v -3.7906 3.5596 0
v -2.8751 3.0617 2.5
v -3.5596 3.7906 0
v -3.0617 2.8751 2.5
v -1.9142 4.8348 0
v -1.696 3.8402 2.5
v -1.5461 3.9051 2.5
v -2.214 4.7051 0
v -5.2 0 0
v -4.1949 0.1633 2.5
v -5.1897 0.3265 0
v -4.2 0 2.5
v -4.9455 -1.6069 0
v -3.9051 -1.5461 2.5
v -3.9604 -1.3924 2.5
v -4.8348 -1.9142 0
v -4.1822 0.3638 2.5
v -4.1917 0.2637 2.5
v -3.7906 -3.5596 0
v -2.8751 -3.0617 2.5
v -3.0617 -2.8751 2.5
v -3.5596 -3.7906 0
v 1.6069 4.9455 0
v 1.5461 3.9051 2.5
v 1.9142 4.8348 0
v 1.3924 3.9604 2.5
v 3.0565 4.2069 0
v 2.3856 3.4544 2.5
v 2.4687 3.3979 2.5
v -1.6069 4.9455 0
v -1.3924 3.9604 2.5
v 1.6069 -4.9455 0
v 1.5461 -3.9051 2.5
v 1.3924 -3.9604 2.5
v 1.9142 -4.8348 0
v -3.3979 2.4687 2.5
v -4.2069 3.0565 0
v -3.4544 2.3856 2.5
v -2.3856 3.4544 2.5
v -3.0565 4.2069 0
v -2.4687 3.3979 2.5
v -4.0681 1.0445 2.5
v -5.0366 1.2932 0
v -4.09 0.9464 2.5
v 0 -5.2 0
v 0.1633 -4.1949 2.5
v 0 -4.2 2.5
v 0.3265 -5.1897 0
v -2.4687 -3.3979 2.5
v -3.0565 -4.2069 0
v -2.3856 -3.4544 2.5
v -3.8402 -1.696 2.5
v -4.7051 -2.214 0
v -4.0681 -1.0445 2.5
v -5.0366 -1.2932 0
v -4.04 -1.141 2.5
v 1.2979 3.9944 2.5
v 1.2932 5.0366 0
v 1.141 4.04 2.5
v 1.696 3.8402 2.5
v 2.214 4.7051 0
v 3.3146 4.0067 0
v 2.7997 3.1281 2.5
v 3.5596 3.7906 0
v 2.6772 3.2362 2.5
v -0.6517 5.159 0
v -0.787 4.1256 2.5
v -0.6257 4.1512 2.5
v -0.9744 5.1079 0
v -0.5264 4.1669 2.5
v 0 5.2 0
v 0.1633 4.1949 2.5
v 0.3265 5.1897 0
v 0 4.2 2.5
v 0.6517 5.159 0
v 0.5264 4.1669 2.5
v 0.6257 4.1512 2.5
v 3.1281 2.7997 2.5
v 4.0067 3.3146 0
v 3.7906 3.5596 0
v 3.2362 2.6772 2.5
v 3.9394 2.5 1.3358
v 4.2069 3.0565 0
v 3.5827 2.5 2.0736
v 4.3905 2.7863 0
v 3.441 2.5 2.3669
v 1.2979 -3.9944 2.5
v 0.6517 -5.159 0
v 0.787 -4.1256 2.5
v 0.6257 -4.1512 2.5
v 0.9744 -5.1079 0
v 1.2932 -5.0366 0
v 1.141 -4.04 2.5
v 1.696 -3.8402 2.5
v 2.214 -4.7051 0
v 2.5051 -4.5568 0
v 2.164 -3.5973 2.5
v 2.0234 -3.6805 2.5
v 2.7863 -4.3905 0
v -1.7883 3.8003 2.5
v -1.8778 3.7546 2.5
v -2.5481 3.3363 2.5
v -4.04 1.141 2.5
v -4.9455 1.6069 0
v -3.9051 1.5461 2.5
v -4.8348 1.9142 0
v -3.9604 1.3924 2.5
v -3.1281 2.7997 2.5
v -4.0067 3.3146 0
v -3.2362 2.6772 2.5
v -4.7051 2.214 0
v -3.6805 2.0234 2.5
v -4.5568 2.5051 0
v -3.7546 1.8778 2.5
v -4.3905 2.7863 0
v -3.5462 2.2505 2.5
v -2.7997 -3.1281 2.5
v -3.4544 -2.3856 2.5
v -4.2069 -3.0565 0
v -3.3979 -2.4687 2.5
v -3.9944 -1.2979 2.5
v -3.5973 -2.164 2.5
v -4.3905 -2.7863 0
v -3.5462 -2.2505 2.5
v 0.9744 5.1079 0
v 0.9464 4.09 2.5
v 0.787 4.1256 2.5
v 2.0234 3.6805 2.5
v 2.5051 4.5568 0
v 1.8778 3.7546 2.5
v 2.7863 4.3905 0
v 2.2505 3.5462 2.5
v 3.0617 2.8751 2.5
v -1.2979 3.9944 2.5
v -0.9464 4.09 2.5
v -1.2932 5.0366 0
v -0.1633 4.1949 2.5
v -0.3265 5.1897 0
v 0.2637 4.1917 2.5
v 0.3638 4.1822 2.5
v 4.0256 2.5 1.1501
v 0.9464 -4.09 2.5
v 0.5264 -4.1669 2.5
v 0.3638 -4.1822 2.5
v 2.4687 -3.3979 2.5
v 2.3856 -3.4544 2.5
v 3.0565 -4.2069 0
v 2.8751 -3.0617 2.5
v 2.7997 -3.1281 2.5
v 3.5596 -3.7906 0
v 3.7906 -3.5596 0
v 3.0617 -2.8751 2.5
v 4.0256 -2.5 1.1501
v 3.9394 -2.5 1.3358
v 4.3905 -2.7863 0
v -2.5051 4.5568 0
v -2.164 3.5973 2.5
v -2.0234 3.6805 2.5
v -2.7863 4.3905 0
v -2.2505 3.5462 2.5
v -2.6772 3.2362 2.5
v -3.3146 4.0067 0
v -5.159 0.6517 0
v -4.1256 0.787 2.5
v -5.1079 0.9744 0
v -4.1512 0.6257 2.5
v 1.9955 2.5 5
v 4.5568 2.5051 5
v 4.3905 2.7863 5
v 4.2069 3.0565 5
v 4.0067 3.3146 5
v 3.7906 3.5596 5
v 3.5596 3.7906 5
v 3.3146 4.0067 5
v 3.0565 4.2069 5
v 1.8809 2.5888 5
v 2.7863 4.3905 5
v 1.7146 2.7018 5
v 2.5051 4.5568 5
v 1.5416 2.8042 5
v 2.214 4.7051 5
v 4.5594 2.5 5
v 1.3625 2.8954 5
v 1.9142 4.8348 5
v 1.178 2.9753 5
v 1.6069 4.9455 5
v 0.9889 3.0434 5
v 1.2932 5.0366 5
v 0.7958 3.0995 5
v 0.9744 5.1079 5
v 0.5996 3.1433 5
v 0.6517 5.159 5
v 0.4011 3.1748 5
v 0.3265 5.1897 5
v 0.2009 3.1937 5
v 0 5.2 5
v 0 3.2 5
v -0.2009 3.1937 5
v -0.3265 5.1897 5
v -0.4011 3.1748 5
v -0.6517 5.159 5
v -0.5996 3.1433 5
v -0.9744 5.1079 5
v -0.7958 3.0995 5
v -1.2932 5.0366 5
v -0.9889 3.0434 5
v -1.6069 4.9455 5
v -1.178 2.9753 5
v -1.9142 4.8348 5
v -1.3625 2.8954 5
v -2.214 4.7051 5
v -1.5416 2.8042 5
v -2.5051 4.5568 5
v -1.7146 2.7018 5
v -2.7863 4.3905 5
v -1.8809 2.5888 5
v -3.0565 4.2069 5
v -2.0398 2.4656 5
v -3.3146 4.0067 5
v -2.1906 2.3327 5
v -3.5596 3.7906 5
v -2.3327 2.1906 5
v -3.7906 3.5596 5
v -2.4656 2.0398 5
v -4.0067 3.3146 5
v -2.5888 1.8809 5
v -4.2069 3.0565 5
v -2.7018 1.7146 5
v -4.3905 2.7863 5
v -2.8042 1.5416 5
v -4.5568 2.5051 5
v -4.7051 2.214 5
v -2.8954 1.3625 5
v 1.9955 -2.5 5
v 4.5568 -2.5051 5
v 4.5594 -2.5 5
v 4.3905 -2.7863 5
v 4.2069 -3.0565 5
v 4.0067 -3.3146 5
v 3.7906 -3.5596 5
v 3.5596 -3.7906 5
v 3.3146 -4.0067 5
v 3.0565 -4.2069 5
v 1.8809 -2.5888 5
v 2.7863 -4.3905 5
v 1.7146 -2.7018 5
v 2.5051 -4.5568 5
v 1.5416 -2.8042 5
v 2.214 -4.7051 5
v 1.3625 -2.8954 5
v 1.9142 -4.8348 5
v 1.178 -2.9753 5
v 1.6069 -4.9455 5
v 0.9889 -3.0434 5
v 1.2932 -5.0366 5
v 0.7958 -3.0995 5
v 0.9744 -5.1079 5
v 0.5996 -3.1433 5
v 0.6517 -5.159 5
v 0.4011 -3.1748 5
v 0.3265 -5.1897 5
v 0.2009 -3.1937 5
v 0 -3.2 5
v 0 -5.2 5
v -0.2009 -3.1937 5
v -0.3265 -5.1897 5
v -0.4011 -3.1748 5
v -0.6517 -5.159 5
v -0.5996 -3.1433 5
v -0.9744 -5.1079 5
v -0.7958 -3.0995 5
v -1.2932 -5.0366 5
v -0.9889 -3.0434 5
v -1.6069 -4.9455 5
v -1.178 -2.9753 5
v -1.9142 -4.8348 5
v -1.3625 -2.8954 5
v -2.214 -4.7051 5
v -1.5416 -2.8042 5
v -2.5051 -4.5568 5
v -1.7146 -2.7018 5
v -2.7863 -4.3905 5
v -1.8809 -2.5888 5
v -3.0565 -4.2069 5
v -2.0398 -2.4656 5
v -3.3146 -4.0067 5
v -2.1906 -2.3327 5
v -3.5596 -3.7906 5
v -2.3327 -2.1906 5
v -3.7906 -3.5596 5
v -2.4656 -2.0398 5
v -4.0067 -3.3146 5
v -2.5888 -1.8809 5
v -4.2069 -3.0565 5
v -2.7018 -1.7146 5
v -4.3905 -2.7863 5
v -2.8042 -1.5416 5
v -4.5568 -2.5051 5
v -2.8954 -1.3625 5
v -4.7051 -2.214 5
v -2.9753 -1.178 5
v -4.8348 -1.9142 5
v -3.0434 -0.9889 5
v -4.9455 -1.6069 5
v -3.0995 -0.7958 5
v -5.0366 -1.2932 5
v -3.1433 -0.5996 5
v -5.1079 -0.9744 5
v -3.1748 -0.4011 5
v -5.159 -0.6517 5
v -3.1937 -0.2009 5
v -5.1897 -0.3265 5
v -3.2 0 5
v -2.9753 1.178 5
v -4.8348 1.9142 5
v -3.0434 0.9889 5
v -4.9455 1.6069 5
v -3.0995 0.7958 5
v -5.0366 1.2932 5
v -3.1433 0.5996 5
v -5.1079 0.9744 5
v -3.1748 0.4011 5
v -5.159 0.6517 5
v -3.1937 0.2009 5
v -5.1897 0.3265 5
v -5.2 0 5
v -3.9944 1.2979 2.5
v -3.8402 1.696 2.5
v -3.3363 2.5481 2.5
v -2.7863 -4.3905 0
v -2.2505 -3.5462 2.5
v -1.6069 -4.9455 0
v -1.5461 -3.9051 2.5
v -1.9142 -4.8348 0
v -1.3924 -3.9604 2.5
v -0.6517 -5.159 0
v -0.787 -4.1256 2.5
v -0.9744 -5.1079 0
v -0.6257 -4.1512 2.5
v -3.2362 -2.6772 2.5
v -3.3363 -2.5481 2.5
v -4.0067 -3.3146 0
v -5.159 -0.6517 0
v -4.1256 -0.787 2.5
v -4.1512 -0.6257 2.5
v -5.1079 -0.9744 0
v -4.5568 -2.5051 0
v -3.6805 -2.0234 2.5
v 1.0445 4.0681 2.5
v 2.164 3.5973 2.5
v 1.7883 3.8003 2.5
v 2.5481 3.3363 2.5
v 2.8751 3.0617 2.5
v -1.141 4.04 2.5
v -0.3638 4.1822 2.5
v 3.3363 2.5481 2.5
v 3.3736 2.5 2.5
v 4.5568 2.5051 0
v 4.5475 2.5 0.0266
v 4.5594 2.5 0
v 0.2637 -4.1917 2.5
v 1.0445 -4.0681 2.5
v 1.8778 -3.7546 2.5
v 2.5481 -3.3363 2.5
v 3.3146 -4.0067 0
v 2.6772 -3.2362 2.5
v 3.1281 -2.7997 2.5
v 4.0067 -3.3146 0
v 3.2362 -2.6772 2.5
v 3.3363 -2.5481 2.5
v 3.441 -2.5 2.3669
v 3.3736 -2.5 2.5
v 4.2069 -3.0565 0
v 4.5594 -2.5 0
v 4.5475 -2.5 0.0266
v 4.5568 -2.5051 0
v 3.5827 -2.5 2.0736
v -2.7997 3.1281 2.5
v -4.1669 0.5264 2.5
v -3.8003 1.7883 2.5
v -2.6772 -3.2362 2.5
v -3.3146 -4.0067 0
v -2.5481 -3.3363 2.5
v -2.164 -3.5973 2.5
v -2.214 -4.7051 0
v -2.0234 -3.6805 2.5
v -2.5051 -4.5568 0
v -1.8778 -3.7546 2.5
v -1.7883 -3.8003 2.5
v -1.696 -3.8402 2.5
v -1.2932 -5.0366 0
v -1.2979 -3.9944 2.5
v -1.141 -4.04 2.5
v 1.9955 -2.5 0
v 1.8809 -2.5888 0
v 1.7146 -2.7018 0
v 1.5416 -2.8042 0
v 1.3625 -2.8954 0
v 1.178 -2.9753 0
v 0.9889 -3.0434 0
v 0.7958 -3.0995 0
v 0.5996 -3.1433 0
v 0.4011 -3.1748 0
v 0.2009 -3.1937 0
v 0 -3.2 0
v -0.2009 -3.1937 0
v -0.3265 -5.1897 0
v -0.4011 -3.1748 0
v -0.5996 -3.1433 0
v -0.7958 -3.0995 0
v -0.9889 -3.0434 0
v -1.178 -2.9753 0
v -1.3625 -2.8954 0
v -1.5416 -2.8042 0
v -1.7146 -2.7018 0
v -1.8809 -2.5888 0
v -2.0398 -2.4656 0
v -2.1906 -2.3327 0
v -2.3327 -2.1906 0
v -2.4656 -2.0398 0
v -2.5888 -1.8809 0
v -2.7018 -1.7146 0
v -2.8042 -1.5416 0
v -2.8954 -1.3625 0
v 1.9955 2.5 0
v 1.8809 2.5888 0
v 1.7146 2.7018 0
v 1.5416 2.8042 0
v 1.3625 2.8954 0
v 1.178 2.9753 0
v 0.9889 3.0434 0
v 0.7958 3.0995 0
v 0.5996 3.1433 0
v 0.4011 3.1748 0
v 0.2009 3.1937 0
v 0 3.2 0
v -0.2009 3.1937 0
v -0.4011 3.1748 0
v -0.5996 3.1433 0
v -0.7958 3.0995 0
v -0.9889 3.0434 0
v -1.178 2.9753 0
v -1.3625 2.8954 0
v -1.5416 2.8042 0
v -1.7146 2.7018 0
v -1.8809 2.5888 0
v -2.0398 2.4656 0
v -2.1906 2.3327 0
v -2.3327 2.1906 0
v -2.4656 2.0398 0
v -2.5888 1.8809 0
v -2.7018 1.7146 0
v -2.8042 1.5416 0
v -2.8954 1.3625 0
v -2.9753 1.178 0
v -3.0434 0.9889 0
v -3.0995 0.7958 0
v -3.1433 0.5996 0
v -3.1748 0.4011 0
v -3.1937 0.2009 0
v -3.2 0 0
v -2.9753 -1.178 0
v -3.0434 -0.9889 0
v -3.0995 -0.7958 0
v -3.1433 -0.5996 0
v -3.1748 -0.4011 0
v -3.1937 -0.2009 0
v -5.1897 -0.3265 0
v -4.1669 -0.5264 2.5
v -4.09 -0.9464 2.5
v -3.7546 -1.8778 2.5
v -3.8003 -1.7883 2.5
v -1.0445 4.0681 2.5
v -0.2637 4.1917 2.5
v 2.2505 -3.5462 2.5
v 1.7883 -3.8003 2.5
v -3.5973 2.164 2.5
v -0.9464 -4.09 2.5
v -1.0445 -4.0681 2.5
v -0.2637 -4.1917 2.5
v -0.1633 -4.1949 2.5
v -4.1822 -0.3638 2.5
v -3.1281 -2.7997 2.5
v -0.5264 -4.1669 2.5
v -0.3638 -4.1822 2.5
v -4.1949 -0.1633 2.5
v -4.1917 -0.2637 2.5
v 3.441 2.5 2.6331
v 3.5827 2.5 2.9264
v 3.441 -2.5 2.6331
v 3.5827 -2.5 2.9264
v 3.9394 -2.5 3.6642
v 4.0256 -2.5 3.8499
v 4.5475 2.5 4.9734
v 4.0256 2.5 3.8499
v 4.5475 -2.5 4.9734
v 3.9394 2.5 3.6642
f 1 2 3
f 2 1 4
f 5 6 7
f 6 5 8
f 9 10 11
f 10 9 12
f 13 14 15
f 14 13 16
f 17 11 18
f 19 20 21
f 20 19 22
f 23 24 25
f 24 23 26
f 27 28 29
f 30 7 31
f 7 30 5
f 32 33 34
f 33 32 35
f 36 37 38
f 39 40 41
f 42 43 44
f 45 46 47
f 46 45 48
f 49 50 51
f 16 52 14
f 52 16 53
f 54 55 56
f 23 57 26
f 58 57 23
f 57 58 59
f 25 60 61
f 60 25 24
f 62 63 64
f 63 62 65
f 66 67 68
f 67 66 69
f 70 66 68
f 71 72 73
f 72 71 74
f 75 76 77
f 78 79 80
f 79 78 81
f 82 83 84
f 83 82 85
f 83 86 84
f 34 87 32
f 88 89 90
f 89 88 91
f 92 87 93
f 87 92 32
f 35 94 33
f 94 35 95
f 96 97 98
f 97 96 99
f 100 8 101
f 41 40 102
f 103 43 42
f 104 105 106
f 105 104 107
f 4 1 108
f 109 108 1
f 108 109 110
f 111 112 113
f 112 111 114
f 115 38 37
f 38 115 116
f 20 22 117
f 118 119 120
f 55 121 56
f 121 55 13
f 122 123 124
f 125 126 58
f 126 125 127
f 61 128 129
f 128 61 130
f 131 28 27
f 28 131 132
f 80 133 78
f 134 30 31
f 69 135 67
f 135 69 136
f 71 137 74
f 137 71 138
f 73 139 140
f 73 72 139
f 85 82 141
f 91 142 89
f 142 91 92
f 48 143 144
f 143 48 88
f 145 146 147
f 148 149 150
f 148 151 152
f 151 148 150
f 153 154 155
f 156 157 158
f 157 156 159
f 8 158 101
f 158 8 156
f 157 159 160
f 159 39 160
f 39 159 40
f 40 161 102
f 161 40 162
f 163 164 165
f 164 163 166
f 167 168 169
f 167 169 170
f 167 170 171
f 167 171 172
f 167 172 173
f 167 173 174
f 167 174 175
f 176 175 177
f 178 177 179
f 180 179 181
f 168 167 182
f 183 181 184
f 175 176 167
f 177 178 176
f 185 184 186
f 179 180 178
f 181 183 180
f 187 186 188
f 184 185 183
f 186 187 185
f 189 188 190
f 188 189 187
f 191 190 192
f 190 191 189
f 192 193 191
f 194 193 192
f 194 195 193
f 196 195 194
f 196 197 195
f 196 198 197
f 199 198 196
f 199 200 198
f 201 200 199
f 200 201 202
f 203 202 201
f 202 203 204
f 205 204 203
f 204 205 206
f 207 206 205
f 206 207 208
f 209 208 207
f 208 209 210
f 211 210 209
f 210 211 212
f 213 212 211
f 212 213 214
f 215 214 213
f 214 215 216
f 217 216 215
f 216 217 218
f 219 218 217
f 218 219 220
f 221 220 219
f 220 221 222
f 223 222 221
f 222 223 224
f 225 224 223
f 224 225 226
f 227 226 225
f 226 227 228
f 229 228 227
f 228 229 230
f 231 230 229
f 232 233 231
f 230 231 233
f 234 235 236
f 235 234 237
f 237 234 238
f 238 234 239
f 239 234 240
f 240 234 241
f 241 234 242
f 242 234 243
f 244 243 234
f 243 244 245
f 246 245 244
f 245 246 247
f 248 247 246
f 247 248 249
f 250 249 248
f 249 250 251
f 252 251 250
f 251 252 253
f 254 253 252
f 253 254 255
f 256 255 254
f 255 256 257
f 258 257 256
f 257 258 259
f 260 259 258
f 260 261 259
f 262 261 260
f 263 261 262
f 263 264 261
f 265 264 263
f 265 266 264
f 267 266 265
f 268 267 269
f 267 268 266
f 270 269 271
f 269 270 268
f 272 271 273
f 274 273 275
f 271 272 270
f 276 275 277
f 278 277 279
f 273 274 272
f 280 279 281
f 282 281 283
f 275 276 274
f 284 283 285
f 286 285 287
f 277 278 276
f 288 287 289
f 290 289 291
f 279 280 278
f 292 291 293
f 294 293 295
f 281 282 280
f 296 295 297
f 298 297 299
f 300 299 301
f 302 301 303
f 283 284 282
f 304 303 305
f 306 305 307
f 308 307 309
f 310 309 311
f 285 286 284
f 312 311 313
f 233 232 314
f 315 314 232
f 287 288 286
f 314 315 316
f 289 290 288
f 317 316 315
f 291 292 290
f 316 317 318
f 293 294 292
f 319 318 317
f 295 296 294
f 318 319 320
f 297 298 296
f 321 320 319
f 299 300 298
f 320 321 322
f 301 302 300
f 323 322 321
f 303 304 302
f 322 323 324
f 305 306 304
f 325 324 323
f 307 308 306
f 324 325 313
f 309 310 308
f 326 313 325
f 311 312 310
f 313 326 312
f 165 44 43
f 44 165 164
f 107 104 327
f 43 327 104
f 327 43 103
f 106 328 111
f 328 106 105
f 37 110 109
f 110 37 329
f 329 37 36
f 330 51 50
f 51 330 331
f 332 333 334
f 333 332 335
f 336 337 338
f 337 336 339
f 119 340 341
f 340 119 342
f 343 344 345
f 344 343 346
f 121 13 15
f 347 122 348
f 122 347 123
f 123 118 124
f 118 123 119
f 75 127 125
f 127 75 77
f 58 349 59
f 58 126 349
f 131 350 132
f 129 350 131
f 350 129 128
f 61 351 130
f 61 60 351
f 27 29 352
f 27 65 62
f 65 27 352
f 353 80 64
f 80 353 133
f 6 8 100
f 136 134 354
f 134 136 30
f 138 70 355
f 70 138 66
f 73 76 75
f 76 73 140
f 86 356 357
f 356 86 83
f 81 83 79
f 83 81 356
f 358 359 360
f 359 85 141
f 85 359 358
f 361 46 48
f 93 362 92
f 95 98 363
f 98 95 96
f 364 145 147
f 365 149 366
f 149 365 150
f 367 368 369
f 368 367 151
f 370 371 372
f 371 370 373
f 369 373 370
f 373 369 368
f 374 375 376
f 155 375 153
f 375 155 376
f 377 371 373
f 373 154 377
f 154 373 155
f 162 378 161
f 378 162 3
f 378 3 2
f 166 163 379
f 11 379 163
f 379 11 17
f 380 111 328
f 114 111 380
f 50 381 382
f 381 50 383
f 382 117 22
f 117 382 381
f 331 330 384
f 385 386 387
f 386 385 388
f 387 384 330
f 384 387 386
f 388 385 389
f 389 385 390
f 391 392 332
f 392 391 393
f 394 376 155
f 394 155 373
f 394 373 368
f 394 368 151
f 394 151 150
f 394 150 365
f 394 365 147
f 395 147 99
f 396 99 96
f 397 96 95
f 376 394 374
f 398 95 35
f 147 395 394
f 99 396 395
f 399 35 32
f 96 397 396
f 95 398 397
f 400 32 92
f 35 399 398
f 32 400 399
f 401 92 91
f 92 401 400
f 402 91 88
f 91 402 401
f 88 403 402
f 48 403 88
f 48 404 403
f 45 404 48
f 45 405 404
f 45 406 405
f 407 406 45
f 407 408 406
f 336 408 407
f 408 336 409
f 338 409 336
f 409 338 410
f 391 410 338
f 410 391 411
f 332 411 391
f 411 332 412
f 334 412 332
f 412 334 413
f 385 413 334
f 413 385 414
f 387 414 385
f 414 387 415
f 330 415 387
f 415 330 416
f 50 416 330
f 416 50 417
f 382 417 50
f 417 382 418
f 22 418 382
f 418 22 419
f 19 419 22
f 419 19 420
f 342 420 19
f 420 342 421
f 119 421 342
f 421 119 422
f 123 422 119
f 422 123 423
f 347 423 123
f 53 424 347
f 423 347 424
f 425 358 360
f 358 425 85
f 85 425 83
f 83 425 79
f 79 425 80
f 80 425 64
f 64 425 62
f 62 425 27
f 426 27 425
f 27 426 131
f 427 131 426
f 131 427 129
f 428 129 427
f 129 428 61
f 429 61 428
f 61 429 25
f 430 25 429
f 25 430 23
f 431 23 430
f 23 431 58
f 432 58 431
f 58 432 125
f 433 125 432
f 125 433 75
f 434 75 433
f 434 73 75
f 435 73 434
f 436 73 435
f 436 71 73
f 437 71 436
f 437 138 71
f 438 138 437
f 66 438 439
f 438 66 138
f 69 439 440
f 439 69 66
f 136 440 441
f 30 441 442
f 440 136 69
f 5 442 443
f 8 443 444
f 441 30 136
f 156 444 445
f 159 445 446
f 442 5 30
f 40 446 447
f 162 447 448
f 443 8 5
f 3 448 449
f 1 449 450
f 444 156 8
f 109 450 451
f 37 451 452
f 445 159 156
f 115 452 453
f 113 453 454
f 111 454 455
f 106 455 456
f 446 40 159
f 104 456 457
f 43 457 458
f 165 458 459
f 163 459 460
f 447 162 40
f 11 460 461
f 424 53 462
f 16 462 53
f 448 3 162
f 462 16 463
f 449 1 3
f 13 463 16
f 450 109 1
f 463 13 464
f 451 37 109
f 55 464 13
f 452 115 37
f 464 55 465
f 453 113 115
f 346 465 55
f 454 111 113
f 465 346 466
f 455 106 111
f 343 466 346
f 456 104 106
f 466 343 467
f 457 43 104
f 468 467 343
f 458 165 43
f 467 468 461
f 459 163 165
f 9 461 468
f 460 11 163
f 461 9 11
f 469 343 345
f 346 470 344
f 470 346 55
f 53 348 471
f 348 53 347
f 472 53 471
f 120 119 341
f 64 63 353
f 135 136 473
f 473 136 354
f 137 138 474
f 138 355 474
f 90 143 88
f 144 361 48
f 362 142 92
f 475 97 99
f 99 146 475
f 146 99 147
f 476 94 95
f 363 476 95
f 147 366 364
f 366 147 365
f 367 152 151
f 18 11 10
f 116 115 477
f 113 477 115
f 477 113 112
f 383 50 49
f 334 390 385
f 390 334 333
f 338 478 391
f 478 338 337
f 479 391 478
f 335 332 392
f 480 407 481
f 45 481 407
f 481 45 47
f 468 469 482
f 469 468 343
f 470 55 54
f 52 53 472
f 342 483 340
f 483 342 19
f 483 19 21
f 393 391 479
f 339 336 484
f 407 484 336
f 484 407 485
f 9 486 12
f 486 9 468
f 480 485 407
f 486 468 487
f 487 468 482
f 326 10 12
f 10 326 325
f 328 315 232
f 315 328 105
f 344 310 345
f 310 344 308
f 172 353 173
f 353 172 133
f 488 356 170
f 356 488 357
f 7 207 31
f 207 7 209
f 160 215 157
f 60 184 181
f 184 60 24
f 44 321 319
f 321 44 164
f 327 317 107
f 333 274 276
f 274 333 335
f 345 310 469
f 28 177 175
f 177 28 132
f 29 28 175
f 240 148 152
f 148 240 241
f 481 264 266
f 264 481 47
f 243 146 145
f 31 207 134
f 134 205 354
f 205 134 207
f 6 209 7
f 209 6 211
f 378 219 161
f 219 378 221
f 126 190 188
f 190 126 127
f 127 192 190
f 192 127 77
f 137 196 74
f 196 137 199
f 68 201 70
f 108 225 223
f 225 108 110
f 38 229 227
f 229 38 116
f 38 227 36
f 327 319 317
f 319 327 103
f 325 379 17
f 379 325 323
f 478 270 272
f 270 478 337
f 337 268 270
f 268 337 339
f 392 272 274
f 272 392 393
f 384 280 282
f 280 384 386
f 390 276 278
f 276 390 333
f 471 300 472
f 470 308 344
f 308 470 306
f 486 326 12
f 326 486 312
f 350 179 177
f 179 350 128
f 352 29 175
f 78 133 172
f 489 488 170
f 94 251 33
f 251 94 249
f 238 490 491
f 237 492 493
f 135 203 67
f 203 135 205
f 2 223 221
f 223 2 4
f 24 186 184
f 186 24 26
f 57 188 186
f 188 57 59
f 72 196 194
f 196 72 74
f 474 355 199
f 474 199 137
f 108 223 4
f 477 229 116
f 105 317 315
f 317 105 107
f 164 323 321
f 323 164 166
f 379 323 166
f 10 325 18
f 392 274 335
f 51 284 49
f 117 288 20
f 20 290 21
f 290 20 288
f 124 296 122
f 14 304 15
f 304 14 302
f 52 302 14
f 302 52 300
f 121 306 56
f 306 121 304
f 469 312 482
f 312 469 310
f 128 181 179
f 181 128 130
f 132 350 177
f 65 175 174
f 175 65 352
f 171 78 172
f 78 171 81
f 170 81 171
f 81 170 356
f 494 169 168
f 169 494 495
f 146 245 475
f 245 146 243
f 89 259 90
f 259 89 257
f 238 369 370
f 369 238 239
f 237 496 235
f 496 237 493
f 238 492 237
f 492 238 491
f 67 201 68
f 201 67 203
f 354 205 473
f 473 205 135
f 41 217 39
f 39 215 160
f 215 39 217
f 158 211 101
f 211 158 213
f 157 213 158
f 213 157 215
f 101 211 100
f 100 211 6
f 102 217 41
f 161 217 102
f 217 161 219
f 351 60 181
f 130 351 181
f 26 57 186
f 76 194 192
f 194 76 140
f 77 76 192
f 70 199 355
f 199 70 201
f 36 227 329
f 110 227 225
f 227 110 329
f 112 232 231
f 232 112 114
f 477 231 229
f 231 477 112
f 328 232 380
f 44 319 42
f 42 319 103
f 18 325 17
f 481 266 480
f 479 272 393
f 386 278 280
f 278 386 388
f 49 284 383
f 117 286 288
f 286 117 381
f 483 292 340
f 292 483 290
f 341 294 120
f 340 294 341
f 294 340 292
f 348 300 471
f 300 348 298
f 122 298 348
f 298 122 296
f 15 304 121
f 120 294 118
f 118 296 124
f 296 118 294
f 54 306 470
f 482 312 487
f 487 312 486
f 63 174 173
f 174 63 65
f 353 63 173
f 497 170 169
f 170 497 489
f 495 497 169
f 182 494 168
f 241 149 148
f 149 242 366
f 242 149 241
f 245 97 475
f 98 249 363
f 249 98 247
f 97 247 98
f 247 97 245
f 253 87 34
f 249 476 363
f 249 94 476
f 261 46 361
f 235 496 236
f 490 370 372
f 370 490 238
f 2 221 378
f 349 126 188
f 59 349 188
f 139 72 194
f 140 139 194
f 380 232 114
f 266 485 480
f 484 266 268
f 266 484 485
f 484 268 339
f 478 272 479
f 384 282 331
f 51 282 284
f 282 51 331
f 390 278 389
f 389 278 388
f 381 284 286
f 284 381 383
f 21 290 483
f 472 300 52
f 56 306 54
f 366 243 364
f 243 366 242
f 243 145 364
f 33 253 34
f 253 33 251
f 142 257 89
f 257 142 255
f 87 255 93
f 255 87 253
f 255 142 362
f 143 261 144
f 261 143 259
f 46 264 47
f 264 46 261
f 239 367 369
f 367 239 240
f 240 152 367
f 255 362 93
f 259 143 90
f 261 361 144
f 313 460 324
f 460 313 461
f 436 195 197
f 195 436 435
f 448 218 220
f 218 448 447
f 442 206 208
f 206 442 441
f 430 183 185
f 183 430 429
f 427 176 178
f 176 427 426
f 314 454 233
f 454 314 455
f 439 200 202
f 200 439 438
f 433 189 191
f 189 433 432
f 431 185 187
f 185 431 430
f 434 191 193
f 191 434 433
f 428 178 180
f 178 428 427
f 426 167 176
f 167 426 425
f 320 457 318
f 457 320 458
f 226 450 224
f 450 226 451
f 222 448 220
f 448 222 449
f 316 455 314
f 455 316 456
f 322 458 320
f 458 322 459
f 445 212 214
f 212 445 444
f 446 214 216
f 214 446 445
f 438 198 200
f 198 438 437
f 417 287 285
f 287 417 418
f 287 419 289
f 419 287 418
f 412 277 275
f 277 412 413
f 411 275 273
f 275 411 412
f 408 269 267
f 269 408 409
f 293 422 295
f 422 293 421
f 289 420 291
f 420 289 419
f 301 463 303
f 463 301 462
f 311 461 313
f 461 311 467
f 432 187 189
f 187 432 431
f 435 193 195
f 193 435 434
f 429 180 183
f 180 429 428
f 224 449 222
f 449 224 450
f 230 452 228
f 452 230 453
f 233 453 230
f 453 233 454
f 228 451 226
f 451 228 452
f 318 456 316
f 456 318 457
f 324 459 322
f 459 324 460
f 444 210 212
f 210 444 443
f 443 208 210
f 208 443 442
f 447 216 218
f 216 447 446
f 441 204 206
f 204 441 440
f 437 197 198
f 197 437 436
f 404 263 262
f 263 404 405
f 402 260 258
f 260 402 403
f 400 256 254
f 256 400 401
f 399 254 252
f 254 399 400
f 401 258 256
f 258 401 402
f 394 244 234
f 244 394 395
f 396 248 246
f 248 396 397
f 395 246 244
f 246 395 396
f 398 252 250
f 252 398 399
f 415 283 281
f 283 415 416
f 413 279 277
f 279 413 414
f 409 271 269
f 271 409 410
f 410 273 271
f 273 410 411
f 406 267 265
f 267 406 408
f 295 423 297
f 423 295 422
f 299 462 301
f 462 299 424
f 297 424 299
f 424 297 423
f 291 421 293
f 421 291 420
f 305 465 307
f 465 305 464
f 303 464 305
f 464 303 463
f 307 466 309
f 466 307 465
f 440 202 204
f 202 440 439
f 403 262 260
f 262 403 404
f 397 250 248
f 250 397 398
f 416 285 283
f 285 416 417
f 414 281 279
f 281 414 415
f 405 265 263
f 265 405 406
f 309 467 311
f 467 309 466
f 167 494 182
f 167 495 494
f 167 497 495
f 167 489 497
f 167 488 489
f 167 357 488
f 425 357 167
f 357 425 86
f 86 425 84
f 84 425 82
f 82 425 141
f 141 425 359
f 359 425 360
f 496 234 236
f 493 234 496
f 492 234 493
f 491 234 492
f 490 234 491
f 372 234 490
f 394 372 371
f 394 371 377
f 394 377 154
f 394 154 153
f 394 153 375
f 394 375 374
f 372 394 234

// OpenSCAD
$fn = 100;


h = 5;
r1 = 5.2;
r2 = 3.2;

module mount(){
    difference(){
        difference(){
            union(){
                cylinder(h, r1, r2, true);
                rotate([0,180,0])
                cylinder(h, r1, r2, true);
            }
            cylinder(h+2, r2, r2, true);
        }
        translate([5,0,0])
        cube([10,5,6], true);
    }
}

translate([0,0,2.5])
color("#11439B")mount();
